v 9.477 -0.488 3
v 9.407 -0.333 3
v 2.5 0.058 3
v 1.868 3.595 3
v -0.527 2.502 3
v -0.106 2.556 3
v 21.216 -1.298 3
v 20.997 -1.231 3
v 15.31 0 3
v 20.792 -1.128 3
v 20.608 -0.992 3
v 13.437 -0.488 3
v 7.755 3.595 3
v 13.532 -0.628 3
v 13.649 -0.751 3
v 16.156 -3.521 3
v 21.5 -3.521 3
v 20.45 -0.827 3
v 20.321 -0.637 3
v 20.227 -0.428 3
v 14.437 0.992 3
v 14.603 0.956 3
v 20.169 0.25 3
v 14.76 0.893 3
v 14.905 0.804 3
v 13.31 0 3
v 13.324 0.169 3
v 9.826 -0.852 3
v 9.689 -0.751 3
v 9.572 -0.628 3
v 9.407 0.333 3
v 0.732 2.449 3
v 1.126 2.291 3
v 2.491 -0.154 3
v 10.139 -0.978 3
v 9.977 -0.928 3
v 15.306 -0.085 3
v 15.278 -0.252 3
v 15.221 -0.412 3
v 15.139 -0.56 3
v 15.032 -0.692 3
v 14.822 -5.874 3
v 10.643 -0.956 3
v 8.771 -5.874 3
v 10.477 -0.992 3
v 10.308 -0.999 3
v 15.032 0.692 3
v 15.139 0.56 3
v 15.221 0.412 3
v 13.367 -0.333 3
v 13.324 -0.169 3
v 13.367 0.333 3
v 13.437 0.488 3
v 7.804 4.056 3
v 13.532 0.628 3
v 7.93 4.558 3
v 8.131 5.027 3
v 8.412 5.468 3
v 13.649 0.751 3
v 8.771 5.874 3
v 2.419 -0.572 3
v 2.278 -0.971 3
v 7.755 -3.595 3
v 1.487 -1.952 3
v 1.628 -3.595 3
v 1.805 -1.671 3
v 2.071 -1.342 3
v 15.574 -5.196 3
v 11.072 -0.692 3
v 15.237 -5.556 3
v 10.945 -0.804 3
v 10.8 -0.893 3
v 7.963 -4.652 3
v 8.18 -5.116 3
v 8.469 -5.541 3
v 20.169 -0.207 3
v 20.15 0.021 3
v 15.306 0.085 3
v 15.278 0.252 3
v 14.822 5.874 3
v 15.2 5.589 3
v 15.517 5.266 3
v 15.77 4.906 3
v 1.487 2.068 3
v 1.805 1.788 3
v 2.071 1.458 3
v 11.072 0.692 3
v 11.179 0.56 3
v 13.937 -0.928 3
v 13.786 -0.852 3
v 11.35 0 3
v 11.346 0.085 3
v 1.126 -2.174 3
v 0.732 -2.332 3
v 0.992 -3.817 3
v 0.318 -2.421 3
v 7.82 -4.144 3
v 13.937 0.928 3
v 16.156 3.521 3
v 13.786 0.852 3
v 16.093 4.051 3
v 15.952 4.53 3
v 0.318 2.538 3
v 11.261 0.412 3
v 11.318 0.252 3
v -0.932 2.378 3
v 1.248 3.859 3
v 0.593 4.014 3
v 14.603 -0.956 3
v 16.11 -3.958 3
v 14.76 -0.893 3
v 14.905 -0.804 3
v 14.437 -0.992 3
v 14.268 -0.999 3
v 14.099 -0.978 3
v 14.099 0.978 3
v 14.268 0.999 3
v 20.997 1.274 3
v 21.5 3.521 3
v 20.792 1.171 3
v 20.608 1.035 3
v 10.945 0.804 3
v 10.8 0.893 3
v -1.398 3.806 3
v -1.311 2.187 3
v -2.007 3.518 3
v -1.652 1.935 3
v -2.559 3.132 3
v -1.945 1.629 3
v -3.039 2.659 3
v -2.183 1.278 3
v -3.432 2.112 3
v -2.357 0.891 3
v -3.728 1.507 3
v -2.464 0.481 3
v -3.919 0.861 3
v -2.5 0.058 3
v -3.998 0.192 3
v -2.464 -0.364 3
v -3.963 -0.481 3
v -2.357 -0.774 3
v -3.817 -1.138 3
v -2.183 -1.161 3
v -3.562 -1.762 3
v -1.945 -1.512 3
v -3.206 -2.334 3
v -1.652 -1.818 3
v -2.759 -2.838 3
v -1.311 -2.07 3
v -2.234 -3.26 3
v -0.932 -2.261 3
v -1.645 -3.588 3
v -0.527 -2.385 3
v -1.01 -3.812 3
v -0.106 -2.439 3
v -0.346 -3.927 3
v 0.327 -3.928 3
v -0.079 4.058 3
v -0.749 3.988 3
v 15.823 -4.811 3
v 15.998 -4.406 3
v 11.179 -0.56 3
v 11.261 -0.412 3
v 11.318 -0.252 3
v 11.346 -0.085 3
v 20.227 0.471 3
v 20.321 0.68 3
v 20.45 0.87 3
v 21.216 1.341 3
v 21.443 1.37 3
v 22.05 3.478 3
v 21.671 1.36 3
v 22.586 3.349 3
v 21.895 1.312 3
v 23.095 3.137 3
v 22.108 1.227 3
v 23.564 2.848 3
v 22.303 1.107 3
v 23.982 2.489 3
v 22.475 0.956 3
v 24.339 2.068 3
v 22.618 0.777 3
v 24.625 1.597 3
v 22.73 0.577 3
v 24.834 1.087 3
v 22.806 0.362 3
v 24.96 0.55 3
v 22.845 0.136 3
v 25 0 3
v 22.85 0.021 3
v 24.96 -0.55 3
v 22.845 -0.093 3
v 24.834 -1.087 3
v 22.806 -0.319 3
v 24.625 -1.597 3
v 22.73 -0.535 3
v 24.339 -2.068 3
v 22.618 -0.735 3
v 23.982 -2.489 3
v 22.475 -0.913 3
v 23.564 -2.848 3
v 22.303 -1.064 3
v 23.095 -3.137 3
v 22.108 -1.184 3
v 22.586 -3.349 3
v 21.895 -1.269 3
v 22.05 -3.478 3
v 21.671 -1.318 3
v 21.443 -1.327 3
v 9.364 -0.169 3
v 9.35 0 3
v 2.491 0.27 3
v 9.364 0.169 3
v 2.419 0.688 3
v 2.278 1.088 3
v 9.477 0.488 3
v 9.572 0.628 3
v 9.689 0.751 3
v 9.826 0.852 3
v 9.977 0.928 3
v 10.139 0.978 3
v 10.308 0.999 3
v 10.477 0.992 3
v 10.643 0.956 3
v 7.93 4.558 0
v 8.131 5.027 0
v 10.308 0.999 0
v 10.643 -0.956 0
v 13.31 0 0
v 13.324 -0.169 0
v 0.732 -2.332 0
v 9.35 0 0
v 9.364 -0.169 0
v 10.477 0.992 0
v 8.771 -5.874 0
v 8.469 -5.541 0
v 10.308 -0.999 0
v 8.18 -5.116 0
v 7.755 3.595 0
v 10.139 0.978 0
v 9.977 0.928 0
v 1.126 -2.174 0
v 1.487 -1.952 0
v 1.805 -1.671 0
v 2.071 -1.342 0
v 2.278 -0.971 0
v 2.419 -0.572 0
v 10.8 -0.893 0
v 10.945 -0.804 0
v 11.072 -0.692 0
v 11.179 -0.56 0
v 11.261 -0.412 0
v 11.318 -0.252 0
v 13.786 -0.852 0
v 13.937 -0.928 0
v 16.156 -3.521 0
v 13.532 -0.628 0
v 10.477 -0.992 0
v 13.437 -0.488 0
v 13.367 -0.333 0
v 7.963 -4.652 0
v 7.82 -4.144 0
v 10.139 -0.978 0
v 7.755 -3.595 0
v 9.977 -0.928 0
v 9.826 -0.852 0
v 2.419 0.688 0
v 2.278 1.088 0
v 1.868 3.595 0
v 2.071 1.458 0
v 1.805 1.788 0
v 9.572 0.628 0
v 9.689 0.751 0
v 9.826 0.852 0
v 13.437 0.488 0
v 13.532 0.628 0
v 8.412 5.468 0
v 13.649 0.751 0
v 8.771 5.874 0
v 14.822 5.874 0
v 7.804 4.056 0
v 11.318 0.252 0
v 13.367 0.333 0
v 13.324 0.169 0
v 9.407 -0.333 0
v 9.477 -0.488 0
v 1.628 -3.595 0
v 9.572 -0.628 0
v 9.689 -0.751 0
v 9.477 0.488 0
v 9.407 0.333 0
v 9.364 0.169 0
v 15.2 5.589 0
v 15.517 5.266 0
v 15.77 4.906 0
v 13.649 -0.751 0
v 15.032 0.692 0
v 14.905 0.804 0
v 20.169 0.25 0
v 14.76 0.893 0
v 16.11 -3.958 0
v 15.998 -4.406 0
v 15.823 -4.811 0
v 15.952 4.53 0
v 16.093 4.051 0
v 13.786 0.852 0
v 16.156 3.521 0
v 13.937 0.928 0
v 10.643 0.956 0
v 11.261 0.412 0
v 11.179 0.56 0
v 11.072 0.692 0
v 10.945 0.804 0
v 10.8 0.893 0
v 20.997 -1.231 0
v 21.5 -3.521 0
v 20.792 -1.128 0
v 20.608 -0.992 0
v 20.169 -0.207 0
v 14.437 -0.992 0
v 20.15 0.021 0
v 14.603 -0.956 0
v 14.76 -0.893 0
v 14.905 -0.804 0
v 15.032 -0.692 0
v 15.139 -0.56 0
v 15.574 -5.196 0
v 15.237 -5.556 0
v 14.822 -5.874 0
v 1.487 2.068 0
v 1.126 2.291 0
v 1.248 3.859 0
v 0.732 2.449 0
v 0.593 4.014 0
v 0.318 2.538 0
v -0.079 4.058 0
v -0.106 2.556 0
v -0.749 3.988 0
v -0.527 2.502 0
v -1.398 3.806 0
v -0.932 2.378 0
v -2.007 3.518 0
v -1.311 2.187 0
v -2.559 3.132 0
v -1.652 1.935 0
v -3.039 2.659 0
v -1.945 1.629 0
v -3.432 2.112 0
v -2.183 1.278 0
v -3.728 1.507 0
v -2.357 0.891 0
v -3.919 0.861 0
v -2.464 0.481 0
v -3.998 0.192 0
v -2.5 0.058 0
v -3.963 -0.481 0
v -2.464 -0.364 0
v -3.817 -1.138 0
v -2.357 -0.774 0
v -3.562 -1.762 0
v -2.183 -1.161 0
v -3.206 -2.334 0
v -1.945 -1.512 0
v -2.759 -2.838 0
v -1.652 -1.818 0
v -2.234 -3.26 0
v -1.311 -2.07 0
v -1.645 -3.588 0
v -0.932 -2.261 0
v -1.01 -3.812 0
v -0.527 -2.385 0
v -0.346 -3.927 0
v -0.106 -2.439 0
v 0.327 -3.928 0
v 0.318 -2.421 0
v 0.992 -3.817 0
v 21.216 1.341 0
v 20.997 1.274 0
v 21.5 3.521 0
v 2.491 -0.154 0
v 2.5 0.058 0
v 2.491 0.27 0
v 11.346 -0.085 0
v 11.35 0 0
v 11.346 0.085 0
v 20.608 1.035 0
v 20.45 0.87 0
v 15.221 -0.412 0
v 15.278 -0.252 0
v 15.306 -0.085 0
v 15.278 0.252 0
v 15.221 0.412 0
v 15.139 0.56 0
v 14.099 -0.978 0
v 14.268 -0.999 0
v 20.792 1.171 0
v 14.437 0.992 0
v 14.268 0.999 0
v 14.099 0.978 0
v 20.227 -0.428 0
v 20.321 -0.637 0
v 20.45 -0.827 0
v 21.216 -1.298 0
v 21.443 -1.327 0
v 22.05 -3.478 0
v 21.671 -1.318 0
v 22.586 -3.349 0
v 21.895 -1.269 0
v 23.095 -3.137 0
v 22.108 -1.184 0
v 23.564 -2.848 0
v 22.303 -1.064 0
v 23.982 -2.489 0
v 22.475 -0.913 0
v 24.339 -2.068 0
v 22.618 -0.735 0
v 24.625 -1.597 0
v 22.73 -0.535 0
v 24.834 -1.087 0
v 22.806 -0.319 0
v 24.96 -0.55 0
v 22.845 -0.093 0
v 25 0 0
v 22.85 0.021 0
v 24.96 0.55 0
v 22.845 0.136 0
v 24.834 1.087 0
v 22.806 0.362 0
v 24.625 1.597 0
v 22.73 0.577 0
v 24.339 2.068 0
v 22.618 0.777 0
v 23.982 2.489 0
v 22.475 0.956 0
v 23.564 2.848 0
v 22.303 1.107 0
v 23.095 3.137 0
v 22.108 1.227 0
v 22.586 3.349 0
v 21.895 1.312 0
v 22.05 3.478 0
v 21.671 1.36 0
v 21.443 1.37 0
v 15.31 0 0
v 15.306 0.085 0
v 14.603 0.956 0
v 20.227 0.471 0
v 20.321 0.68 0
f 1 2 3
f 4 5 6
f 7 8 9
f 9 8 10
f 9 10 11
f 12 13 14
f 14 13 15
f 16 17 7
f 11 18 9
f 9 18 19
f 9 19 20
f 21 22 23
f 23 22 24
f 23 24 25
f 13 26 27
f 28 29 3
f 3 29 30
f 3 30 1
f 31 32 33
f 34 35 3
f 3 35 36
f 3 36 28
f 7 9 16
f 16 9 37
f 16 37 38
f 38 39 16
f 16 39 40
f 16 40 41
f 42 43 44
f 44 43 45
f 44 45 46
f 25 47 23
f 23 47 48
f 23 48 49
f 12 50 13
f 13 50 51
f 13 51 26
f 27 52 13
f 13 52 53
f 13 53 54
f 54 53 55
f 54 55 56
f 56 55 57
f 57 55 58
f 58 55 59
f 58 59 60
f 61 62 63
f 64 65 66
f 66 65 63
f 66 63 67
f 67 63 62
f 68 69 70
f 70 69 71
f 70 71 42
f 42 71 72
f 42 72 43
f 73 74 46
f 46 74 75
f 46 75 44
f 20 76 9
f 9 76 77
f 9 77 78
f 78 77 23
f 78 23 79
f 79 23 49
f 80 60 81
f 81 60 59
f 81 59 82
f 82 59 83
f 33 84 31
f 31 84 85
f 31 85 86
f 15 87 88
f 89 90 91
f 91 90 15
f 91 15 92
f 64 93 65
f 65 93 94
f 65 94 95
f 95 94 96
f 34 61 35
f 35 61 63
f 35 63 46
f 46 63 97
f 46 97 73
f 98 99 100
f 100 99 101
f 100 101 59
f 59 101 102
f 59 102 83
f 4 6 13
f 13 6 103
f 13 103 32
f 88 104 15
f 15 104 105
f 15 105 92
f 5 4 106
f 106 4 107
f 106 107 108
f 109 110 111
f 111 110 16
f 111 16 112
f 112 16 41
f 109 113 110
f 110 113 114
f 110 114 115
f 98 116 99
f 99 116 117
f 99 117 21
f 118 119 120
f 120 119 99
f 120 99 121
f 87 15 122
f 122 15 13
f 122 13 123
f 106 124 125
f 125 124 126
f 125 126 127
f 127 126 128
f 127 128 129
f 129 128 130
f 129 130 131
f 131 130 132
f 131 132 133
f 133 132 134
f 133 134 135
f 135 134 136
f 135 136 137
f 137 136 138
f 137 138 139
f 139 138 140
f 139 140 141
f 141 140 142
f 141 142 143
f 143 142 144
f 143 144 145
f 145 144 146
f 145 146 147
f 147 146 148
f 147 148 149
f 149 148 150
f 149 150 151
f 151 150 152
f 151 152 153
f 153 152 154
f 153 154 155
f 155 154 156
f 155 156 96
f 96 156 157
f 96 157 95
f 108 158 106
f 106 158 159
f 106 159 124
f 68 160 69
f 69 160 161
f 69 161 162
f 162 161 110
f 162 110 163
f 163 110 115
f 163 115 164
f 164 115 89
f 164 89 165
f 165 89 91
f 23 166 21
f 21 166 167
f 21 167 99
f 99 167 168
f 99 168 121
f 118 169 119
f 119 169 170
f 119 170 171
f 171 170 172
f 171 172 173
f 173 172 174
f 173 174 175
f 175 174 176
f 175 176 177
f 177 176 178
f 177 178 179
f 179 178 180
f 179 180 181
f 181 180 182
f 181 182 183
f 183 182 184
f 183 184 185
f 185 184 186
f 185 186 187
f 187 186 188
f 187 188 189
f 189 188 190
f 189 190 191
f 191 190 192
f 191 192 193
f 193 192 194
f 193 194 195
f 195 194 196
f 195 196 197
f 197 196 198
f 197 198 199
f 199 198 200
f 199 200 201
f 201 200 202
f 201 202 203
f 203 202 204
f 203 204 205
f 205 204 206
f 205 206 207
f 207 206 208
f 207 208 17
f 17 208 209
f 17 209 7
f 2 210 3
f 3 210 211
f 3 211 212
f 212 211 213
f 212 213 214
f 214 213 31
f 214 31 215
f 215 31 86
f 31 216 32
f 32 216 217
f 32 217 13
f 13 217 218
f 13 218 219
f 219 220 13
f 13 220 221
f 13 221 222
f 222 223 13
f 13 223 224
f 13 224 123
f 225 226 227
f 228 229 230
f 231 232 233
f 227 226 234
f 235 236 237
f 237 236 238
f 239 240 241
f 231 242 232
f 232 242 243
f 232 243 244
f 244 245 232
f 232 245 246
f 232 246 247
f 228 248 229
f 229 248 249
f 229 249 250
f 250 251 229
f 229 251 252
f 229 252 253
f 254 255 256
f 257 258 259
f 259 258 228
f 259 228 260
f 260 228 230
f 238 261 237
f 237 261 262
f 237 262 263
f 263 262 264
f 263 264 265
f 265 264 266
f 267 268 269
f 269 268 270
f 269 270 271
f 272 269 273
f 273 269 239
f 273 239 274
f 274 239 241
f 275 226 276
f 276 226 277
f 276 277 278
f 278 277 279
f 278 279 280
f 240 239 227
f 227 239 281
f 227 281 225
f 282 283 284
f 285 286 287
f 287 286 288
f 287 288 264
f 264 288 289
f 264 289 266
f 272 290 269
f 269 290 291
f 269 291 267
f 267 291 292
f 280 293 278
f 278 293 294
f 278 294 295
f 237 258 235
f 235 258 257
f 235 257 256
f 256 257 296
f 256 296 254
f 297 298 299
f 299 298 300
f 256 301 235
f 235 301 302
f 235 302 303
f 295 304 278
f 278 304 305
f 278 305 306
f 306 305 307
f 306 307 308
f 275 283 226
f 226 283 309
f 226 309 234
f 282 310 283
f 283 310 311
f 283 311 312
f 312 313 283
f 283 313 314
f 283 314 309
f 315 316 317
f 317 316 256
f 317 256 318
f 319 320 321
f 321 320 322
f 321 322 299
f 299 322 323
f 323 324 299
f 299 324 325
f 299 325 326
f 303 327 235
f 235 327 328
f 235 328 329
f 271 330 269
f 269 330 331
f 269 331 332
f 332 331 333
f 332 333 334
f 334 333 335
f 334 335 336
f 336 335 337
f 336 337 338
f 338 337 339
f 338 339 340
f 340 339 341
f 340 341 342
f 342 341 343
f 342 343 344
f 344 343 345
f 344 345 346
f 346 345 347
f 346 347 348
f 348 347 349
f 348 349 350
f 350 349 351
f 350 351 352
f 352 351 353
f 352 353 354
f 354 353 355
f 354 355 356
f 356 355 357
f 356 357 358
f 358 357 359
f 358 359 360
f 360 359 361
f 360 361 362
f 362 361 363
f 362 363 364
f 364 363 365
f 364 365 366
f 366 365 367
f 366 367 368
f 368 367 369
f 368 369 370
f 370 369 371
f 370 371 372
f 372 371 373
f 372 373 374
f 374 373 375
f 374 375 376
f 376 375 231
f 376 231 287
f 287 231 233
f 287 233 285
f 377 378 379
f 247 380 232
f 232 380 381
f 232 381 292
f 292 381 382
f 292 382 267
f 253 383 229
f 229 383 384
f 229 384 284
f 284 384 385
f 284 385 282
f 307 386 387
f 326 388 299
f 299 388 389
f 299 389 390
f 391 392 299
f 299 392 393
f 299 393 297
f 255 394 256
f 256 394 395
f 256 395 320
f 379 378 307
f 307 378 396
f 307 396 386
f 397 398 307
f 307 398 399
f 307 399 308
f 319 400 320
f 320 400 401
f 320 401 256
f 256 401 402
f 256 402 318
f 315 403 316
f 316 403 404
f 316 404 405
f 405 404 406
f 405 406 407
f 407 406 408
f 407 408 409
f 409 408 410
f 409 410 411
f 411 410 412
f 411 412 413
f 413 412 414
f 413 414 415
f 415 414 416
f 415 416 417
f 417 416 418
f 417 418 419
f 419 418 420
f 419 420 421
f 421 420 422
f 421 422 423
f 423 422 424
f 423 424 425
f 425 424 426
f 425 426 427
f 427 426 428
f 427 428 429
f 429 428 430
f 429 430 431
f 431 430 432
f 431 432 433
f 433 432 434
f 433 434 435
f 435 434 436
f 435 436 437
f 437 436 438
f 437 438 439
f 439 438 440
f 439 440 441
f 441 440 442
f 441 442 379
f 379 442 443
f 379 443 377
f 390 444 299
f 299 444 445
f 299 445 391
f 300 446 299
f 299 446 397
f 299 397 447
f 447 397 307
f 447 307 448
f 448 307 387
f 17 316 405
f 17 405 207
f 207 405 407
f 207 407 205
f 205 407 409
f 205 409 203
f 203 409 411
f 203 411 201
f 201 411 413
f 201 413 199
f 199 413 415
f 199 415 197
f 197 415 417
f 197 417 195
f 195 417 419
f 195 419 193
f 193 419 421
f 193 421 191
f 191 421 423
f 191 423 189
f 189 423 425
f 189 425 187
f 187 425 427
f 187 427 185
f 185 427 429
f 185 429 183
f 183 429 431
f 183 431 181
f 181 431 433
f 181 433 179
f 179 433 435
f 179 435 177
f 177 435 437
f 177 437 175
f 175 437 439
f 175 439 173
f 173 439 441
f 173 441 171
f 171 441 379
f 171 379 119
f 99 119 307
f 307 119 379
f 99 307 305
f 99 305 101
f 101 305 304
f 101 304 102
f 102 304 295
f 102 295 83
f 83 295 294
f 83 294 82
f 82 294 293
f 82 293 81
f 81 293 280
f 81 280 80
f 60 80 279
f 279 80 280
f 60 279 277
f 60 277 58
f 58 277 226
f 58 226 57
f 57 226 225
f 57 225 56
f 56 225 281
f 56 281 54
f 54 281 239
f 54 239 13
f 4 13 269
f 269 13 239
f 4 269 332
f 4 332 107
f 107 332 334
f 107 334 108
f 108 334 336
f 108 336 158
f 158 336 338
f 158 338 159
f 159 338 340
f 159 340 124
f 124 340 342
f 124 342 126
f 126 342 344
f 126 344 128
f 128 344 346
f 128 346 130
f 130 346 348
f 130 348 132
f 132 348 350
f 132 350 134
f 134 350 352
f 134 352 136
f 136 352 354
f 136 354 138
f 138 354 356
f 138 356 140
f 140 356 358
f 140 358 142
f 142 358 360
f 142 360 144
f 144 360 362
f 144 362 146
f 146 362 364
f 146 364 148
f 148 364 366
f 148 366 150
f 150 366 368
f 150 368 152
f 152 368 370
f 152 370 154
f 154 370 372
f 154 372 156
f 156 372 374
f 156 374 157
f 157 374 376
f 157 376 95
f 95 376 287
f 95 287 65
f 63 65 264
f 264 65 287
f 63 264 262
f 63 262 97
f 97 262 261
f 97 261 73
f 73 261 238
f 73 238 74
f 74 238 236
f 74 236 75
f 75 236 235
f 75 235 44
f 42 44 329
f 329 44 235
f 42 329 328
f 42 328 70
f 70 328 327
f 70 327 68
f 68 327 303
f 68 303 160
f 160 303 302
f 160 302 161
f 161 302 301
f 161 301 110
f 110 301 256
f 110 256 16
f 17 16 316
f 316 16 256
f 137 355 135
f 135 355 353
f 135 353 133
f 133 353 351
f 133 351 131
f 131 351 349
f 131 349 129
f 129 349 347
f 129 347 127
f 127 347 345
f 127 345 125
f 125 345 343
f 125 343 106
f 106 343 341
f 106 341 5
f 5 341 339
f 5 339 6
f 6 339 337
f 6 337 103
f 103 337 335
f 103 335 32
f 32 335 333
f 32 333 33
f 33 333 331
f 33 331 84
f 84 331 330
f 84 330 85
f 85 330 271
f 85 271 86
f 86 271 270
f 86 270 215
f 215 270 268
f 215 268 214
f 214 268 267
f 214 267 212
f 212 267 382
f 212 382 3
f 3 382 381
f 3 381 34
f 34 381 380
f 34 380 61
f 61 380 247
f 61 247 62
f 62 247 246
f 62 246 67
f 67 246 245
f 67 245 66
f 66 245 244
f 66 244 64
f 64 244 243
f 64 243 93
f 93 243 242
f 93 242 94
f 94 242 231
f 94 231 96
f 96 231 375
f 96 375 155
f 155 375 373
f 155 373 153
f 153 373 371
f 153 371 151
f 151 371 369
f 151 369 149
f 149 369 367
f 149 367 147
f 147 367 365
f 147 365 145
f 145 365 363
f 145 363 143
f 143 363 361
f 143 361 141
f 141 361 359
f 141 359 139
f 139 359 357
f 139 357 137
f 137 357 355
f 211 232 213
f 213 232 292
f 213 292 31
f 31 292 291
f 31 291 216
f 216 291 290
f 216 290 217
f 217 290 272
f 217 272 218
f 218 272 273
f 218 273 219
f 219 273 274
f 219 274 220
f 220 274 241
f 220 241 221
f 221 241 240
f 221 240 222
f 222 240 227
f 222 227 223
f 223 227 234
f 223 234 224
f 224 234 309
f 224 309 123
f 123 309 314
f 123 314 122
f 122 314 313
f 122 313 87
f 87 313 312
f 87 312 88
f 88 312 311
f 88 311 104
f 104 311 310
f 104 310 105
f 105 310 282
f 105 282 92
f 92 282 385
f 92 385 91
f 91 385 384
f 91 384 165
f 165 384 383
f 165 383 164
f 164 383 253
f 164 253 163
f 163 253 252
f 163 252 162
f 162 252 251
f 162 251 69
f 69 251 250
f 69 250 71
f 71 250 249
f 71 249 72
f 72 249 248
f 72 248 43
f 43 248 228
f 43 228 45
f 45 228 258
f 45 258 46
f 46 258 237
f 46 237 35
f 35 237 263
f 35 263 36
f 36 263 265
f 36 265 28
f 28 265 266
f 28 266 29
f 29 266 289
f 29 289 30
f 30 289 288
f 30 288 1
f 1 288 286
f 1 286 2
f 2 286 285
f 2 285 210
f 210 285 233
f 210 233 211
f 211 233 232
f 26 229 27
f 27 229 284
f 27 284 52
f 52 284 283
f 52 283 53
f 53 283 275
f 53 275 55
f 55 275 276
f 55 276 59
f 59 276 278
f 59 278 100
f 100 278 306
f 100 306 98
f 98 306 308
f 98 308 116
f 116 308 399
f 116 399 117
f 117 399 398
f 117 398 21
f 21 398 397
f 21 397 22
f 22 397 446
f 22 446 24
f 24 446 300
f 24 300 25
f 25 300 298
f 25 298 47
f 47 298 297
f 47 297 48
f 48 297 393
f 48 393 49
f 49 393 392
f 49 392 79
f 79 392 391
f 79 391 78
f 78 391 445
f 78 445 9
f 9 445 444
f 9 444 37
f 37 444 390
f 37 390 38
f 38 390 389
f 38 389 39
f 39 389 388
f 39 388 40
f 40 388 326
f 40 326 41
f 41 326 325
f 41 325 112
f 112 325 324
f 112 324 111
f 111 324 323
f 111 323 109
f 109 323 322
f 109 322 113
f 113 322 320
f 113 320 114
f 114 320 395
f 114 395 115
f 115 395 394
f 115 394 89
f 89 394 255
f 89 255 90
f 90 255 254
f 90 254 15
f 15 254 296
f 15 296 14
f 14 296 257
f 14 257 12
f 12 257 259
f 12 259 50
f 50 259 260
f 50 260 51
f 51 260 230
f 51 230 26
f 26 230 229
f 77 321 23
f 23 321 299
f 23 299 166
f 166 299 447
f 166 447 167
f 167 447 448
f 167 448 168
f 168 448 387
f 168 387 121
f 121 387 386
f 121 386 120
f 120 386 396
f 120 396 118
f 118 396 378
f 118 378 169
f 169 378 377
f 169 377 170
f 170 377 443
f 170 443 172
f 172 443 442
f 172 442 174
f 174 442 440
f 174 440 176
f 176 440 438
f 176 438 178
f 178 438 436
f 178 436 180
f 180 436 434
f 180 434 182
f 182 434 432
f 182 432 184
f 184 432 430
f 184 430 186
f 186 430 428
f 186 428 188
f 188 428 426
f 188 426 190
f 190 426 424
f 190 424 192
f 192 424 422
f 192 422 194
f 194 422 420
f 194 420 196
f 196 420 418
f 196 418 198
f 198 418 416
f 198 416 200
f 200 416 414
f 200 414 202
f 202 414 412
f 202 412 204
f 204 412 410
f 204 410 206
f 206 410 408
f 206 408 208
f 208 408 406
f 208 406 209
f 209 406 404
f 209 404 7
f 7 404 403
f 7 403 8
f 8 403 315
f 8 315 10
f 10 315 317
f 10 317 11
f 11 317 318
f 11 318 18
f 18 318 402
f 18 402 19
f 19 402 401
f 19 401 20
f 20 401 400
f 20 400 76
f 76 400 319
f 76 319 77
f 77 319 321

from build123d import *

# Parameters (mm, degrees)
SKETCH_3_R      = 2.5
SKETCH_3_R_2    = 1
SKETCH_3_R_3    = 1.35
EXTRUDE_2_DEPTH = 3


with BuildPart() as part:
    # 草图3 → 凸台-拉伸2 (new body)
    with BuildSketch(Plane.XY):
        with BuildLine():
            Line((21.499968123, 3.52141019), (16.156278552, 3.52141019))
            add(Edge.make_bspline(
                [(16.156278552, 3.52141019), (16.088160339, 5.051537173), (14.821900334, 5.873909505)],
                knots=[0, 0, 0, 1, 1, 1], degree=2))
            Line((14.821900334, 5.873909505), (8.771282217, 5.873909505))
            add(Edge.make_bspline(
                [(7.754778373, 3.595279655), (7.816403966, 4.944689103), (8.771282217, 5.873909505)],
                knots=[0, 0, 0, 1, 1, 1], degree=2))
            Line((7.754778373, 3.595279655), (1.868346732, 3.595279655))
            ThreePointArc((1.868346732, 3.595279655), (-3.997767344, 0.192060873), (1.627998751, -3.595279655))
            Line((1.627998751, -3.595279655), (7.754778373, -3.595279655))
            add(Edge.make_bspline(
                [(7.754778373, -3.595279655), (7.816403966, -4.944689103), (8.771282217, -5.873909505)],
                knots=[0, 0, 0, 1, 1, 1], degree=2))
            Line((8.771282217, -5.873909505), (14.821900334, -5.873909505))
            add(Edge.make_bspline(
                [(16.156278552, -3.52141019), (16.088160339, -5.051537173), (14.821900334, -5.873909505)],
                knots=[0, 0, 0, 1, 1, 1], degree=2))
            Line((16.156278552, -3.52141019), (21.499968123, -3.52141019))
            ThreePointArc((21.499968123, -3.52141019), (23.982399961, -2.488702667), (24.999902637, 0))
            ThreePointArc((24.999902637, 0), (23.982399961, 2.488702667), (21.499968123, 3.52141019))
        make_face()
        with Locations((0, 0.058433534)):
            Circle(SKETCH_3_R, mode=Mode.SUBTRACT)
        with Locations((10.35, 0)):
            Circle(SKETCH_3_R_2, mode=Mode.SUBTRACT)
        with Locations((14.31, 0)):
            Circle(SKETCH_3_R_2, mode=Mode.SUBTRACT)
        with Locations((21.499968123, 0.02141019)):
            Circle(SKETCH_3_R_3, mode=Mode.SUBTRACT)
    extrude(amount=EXTRUDE_2_DEPTH)


solid = part.part
